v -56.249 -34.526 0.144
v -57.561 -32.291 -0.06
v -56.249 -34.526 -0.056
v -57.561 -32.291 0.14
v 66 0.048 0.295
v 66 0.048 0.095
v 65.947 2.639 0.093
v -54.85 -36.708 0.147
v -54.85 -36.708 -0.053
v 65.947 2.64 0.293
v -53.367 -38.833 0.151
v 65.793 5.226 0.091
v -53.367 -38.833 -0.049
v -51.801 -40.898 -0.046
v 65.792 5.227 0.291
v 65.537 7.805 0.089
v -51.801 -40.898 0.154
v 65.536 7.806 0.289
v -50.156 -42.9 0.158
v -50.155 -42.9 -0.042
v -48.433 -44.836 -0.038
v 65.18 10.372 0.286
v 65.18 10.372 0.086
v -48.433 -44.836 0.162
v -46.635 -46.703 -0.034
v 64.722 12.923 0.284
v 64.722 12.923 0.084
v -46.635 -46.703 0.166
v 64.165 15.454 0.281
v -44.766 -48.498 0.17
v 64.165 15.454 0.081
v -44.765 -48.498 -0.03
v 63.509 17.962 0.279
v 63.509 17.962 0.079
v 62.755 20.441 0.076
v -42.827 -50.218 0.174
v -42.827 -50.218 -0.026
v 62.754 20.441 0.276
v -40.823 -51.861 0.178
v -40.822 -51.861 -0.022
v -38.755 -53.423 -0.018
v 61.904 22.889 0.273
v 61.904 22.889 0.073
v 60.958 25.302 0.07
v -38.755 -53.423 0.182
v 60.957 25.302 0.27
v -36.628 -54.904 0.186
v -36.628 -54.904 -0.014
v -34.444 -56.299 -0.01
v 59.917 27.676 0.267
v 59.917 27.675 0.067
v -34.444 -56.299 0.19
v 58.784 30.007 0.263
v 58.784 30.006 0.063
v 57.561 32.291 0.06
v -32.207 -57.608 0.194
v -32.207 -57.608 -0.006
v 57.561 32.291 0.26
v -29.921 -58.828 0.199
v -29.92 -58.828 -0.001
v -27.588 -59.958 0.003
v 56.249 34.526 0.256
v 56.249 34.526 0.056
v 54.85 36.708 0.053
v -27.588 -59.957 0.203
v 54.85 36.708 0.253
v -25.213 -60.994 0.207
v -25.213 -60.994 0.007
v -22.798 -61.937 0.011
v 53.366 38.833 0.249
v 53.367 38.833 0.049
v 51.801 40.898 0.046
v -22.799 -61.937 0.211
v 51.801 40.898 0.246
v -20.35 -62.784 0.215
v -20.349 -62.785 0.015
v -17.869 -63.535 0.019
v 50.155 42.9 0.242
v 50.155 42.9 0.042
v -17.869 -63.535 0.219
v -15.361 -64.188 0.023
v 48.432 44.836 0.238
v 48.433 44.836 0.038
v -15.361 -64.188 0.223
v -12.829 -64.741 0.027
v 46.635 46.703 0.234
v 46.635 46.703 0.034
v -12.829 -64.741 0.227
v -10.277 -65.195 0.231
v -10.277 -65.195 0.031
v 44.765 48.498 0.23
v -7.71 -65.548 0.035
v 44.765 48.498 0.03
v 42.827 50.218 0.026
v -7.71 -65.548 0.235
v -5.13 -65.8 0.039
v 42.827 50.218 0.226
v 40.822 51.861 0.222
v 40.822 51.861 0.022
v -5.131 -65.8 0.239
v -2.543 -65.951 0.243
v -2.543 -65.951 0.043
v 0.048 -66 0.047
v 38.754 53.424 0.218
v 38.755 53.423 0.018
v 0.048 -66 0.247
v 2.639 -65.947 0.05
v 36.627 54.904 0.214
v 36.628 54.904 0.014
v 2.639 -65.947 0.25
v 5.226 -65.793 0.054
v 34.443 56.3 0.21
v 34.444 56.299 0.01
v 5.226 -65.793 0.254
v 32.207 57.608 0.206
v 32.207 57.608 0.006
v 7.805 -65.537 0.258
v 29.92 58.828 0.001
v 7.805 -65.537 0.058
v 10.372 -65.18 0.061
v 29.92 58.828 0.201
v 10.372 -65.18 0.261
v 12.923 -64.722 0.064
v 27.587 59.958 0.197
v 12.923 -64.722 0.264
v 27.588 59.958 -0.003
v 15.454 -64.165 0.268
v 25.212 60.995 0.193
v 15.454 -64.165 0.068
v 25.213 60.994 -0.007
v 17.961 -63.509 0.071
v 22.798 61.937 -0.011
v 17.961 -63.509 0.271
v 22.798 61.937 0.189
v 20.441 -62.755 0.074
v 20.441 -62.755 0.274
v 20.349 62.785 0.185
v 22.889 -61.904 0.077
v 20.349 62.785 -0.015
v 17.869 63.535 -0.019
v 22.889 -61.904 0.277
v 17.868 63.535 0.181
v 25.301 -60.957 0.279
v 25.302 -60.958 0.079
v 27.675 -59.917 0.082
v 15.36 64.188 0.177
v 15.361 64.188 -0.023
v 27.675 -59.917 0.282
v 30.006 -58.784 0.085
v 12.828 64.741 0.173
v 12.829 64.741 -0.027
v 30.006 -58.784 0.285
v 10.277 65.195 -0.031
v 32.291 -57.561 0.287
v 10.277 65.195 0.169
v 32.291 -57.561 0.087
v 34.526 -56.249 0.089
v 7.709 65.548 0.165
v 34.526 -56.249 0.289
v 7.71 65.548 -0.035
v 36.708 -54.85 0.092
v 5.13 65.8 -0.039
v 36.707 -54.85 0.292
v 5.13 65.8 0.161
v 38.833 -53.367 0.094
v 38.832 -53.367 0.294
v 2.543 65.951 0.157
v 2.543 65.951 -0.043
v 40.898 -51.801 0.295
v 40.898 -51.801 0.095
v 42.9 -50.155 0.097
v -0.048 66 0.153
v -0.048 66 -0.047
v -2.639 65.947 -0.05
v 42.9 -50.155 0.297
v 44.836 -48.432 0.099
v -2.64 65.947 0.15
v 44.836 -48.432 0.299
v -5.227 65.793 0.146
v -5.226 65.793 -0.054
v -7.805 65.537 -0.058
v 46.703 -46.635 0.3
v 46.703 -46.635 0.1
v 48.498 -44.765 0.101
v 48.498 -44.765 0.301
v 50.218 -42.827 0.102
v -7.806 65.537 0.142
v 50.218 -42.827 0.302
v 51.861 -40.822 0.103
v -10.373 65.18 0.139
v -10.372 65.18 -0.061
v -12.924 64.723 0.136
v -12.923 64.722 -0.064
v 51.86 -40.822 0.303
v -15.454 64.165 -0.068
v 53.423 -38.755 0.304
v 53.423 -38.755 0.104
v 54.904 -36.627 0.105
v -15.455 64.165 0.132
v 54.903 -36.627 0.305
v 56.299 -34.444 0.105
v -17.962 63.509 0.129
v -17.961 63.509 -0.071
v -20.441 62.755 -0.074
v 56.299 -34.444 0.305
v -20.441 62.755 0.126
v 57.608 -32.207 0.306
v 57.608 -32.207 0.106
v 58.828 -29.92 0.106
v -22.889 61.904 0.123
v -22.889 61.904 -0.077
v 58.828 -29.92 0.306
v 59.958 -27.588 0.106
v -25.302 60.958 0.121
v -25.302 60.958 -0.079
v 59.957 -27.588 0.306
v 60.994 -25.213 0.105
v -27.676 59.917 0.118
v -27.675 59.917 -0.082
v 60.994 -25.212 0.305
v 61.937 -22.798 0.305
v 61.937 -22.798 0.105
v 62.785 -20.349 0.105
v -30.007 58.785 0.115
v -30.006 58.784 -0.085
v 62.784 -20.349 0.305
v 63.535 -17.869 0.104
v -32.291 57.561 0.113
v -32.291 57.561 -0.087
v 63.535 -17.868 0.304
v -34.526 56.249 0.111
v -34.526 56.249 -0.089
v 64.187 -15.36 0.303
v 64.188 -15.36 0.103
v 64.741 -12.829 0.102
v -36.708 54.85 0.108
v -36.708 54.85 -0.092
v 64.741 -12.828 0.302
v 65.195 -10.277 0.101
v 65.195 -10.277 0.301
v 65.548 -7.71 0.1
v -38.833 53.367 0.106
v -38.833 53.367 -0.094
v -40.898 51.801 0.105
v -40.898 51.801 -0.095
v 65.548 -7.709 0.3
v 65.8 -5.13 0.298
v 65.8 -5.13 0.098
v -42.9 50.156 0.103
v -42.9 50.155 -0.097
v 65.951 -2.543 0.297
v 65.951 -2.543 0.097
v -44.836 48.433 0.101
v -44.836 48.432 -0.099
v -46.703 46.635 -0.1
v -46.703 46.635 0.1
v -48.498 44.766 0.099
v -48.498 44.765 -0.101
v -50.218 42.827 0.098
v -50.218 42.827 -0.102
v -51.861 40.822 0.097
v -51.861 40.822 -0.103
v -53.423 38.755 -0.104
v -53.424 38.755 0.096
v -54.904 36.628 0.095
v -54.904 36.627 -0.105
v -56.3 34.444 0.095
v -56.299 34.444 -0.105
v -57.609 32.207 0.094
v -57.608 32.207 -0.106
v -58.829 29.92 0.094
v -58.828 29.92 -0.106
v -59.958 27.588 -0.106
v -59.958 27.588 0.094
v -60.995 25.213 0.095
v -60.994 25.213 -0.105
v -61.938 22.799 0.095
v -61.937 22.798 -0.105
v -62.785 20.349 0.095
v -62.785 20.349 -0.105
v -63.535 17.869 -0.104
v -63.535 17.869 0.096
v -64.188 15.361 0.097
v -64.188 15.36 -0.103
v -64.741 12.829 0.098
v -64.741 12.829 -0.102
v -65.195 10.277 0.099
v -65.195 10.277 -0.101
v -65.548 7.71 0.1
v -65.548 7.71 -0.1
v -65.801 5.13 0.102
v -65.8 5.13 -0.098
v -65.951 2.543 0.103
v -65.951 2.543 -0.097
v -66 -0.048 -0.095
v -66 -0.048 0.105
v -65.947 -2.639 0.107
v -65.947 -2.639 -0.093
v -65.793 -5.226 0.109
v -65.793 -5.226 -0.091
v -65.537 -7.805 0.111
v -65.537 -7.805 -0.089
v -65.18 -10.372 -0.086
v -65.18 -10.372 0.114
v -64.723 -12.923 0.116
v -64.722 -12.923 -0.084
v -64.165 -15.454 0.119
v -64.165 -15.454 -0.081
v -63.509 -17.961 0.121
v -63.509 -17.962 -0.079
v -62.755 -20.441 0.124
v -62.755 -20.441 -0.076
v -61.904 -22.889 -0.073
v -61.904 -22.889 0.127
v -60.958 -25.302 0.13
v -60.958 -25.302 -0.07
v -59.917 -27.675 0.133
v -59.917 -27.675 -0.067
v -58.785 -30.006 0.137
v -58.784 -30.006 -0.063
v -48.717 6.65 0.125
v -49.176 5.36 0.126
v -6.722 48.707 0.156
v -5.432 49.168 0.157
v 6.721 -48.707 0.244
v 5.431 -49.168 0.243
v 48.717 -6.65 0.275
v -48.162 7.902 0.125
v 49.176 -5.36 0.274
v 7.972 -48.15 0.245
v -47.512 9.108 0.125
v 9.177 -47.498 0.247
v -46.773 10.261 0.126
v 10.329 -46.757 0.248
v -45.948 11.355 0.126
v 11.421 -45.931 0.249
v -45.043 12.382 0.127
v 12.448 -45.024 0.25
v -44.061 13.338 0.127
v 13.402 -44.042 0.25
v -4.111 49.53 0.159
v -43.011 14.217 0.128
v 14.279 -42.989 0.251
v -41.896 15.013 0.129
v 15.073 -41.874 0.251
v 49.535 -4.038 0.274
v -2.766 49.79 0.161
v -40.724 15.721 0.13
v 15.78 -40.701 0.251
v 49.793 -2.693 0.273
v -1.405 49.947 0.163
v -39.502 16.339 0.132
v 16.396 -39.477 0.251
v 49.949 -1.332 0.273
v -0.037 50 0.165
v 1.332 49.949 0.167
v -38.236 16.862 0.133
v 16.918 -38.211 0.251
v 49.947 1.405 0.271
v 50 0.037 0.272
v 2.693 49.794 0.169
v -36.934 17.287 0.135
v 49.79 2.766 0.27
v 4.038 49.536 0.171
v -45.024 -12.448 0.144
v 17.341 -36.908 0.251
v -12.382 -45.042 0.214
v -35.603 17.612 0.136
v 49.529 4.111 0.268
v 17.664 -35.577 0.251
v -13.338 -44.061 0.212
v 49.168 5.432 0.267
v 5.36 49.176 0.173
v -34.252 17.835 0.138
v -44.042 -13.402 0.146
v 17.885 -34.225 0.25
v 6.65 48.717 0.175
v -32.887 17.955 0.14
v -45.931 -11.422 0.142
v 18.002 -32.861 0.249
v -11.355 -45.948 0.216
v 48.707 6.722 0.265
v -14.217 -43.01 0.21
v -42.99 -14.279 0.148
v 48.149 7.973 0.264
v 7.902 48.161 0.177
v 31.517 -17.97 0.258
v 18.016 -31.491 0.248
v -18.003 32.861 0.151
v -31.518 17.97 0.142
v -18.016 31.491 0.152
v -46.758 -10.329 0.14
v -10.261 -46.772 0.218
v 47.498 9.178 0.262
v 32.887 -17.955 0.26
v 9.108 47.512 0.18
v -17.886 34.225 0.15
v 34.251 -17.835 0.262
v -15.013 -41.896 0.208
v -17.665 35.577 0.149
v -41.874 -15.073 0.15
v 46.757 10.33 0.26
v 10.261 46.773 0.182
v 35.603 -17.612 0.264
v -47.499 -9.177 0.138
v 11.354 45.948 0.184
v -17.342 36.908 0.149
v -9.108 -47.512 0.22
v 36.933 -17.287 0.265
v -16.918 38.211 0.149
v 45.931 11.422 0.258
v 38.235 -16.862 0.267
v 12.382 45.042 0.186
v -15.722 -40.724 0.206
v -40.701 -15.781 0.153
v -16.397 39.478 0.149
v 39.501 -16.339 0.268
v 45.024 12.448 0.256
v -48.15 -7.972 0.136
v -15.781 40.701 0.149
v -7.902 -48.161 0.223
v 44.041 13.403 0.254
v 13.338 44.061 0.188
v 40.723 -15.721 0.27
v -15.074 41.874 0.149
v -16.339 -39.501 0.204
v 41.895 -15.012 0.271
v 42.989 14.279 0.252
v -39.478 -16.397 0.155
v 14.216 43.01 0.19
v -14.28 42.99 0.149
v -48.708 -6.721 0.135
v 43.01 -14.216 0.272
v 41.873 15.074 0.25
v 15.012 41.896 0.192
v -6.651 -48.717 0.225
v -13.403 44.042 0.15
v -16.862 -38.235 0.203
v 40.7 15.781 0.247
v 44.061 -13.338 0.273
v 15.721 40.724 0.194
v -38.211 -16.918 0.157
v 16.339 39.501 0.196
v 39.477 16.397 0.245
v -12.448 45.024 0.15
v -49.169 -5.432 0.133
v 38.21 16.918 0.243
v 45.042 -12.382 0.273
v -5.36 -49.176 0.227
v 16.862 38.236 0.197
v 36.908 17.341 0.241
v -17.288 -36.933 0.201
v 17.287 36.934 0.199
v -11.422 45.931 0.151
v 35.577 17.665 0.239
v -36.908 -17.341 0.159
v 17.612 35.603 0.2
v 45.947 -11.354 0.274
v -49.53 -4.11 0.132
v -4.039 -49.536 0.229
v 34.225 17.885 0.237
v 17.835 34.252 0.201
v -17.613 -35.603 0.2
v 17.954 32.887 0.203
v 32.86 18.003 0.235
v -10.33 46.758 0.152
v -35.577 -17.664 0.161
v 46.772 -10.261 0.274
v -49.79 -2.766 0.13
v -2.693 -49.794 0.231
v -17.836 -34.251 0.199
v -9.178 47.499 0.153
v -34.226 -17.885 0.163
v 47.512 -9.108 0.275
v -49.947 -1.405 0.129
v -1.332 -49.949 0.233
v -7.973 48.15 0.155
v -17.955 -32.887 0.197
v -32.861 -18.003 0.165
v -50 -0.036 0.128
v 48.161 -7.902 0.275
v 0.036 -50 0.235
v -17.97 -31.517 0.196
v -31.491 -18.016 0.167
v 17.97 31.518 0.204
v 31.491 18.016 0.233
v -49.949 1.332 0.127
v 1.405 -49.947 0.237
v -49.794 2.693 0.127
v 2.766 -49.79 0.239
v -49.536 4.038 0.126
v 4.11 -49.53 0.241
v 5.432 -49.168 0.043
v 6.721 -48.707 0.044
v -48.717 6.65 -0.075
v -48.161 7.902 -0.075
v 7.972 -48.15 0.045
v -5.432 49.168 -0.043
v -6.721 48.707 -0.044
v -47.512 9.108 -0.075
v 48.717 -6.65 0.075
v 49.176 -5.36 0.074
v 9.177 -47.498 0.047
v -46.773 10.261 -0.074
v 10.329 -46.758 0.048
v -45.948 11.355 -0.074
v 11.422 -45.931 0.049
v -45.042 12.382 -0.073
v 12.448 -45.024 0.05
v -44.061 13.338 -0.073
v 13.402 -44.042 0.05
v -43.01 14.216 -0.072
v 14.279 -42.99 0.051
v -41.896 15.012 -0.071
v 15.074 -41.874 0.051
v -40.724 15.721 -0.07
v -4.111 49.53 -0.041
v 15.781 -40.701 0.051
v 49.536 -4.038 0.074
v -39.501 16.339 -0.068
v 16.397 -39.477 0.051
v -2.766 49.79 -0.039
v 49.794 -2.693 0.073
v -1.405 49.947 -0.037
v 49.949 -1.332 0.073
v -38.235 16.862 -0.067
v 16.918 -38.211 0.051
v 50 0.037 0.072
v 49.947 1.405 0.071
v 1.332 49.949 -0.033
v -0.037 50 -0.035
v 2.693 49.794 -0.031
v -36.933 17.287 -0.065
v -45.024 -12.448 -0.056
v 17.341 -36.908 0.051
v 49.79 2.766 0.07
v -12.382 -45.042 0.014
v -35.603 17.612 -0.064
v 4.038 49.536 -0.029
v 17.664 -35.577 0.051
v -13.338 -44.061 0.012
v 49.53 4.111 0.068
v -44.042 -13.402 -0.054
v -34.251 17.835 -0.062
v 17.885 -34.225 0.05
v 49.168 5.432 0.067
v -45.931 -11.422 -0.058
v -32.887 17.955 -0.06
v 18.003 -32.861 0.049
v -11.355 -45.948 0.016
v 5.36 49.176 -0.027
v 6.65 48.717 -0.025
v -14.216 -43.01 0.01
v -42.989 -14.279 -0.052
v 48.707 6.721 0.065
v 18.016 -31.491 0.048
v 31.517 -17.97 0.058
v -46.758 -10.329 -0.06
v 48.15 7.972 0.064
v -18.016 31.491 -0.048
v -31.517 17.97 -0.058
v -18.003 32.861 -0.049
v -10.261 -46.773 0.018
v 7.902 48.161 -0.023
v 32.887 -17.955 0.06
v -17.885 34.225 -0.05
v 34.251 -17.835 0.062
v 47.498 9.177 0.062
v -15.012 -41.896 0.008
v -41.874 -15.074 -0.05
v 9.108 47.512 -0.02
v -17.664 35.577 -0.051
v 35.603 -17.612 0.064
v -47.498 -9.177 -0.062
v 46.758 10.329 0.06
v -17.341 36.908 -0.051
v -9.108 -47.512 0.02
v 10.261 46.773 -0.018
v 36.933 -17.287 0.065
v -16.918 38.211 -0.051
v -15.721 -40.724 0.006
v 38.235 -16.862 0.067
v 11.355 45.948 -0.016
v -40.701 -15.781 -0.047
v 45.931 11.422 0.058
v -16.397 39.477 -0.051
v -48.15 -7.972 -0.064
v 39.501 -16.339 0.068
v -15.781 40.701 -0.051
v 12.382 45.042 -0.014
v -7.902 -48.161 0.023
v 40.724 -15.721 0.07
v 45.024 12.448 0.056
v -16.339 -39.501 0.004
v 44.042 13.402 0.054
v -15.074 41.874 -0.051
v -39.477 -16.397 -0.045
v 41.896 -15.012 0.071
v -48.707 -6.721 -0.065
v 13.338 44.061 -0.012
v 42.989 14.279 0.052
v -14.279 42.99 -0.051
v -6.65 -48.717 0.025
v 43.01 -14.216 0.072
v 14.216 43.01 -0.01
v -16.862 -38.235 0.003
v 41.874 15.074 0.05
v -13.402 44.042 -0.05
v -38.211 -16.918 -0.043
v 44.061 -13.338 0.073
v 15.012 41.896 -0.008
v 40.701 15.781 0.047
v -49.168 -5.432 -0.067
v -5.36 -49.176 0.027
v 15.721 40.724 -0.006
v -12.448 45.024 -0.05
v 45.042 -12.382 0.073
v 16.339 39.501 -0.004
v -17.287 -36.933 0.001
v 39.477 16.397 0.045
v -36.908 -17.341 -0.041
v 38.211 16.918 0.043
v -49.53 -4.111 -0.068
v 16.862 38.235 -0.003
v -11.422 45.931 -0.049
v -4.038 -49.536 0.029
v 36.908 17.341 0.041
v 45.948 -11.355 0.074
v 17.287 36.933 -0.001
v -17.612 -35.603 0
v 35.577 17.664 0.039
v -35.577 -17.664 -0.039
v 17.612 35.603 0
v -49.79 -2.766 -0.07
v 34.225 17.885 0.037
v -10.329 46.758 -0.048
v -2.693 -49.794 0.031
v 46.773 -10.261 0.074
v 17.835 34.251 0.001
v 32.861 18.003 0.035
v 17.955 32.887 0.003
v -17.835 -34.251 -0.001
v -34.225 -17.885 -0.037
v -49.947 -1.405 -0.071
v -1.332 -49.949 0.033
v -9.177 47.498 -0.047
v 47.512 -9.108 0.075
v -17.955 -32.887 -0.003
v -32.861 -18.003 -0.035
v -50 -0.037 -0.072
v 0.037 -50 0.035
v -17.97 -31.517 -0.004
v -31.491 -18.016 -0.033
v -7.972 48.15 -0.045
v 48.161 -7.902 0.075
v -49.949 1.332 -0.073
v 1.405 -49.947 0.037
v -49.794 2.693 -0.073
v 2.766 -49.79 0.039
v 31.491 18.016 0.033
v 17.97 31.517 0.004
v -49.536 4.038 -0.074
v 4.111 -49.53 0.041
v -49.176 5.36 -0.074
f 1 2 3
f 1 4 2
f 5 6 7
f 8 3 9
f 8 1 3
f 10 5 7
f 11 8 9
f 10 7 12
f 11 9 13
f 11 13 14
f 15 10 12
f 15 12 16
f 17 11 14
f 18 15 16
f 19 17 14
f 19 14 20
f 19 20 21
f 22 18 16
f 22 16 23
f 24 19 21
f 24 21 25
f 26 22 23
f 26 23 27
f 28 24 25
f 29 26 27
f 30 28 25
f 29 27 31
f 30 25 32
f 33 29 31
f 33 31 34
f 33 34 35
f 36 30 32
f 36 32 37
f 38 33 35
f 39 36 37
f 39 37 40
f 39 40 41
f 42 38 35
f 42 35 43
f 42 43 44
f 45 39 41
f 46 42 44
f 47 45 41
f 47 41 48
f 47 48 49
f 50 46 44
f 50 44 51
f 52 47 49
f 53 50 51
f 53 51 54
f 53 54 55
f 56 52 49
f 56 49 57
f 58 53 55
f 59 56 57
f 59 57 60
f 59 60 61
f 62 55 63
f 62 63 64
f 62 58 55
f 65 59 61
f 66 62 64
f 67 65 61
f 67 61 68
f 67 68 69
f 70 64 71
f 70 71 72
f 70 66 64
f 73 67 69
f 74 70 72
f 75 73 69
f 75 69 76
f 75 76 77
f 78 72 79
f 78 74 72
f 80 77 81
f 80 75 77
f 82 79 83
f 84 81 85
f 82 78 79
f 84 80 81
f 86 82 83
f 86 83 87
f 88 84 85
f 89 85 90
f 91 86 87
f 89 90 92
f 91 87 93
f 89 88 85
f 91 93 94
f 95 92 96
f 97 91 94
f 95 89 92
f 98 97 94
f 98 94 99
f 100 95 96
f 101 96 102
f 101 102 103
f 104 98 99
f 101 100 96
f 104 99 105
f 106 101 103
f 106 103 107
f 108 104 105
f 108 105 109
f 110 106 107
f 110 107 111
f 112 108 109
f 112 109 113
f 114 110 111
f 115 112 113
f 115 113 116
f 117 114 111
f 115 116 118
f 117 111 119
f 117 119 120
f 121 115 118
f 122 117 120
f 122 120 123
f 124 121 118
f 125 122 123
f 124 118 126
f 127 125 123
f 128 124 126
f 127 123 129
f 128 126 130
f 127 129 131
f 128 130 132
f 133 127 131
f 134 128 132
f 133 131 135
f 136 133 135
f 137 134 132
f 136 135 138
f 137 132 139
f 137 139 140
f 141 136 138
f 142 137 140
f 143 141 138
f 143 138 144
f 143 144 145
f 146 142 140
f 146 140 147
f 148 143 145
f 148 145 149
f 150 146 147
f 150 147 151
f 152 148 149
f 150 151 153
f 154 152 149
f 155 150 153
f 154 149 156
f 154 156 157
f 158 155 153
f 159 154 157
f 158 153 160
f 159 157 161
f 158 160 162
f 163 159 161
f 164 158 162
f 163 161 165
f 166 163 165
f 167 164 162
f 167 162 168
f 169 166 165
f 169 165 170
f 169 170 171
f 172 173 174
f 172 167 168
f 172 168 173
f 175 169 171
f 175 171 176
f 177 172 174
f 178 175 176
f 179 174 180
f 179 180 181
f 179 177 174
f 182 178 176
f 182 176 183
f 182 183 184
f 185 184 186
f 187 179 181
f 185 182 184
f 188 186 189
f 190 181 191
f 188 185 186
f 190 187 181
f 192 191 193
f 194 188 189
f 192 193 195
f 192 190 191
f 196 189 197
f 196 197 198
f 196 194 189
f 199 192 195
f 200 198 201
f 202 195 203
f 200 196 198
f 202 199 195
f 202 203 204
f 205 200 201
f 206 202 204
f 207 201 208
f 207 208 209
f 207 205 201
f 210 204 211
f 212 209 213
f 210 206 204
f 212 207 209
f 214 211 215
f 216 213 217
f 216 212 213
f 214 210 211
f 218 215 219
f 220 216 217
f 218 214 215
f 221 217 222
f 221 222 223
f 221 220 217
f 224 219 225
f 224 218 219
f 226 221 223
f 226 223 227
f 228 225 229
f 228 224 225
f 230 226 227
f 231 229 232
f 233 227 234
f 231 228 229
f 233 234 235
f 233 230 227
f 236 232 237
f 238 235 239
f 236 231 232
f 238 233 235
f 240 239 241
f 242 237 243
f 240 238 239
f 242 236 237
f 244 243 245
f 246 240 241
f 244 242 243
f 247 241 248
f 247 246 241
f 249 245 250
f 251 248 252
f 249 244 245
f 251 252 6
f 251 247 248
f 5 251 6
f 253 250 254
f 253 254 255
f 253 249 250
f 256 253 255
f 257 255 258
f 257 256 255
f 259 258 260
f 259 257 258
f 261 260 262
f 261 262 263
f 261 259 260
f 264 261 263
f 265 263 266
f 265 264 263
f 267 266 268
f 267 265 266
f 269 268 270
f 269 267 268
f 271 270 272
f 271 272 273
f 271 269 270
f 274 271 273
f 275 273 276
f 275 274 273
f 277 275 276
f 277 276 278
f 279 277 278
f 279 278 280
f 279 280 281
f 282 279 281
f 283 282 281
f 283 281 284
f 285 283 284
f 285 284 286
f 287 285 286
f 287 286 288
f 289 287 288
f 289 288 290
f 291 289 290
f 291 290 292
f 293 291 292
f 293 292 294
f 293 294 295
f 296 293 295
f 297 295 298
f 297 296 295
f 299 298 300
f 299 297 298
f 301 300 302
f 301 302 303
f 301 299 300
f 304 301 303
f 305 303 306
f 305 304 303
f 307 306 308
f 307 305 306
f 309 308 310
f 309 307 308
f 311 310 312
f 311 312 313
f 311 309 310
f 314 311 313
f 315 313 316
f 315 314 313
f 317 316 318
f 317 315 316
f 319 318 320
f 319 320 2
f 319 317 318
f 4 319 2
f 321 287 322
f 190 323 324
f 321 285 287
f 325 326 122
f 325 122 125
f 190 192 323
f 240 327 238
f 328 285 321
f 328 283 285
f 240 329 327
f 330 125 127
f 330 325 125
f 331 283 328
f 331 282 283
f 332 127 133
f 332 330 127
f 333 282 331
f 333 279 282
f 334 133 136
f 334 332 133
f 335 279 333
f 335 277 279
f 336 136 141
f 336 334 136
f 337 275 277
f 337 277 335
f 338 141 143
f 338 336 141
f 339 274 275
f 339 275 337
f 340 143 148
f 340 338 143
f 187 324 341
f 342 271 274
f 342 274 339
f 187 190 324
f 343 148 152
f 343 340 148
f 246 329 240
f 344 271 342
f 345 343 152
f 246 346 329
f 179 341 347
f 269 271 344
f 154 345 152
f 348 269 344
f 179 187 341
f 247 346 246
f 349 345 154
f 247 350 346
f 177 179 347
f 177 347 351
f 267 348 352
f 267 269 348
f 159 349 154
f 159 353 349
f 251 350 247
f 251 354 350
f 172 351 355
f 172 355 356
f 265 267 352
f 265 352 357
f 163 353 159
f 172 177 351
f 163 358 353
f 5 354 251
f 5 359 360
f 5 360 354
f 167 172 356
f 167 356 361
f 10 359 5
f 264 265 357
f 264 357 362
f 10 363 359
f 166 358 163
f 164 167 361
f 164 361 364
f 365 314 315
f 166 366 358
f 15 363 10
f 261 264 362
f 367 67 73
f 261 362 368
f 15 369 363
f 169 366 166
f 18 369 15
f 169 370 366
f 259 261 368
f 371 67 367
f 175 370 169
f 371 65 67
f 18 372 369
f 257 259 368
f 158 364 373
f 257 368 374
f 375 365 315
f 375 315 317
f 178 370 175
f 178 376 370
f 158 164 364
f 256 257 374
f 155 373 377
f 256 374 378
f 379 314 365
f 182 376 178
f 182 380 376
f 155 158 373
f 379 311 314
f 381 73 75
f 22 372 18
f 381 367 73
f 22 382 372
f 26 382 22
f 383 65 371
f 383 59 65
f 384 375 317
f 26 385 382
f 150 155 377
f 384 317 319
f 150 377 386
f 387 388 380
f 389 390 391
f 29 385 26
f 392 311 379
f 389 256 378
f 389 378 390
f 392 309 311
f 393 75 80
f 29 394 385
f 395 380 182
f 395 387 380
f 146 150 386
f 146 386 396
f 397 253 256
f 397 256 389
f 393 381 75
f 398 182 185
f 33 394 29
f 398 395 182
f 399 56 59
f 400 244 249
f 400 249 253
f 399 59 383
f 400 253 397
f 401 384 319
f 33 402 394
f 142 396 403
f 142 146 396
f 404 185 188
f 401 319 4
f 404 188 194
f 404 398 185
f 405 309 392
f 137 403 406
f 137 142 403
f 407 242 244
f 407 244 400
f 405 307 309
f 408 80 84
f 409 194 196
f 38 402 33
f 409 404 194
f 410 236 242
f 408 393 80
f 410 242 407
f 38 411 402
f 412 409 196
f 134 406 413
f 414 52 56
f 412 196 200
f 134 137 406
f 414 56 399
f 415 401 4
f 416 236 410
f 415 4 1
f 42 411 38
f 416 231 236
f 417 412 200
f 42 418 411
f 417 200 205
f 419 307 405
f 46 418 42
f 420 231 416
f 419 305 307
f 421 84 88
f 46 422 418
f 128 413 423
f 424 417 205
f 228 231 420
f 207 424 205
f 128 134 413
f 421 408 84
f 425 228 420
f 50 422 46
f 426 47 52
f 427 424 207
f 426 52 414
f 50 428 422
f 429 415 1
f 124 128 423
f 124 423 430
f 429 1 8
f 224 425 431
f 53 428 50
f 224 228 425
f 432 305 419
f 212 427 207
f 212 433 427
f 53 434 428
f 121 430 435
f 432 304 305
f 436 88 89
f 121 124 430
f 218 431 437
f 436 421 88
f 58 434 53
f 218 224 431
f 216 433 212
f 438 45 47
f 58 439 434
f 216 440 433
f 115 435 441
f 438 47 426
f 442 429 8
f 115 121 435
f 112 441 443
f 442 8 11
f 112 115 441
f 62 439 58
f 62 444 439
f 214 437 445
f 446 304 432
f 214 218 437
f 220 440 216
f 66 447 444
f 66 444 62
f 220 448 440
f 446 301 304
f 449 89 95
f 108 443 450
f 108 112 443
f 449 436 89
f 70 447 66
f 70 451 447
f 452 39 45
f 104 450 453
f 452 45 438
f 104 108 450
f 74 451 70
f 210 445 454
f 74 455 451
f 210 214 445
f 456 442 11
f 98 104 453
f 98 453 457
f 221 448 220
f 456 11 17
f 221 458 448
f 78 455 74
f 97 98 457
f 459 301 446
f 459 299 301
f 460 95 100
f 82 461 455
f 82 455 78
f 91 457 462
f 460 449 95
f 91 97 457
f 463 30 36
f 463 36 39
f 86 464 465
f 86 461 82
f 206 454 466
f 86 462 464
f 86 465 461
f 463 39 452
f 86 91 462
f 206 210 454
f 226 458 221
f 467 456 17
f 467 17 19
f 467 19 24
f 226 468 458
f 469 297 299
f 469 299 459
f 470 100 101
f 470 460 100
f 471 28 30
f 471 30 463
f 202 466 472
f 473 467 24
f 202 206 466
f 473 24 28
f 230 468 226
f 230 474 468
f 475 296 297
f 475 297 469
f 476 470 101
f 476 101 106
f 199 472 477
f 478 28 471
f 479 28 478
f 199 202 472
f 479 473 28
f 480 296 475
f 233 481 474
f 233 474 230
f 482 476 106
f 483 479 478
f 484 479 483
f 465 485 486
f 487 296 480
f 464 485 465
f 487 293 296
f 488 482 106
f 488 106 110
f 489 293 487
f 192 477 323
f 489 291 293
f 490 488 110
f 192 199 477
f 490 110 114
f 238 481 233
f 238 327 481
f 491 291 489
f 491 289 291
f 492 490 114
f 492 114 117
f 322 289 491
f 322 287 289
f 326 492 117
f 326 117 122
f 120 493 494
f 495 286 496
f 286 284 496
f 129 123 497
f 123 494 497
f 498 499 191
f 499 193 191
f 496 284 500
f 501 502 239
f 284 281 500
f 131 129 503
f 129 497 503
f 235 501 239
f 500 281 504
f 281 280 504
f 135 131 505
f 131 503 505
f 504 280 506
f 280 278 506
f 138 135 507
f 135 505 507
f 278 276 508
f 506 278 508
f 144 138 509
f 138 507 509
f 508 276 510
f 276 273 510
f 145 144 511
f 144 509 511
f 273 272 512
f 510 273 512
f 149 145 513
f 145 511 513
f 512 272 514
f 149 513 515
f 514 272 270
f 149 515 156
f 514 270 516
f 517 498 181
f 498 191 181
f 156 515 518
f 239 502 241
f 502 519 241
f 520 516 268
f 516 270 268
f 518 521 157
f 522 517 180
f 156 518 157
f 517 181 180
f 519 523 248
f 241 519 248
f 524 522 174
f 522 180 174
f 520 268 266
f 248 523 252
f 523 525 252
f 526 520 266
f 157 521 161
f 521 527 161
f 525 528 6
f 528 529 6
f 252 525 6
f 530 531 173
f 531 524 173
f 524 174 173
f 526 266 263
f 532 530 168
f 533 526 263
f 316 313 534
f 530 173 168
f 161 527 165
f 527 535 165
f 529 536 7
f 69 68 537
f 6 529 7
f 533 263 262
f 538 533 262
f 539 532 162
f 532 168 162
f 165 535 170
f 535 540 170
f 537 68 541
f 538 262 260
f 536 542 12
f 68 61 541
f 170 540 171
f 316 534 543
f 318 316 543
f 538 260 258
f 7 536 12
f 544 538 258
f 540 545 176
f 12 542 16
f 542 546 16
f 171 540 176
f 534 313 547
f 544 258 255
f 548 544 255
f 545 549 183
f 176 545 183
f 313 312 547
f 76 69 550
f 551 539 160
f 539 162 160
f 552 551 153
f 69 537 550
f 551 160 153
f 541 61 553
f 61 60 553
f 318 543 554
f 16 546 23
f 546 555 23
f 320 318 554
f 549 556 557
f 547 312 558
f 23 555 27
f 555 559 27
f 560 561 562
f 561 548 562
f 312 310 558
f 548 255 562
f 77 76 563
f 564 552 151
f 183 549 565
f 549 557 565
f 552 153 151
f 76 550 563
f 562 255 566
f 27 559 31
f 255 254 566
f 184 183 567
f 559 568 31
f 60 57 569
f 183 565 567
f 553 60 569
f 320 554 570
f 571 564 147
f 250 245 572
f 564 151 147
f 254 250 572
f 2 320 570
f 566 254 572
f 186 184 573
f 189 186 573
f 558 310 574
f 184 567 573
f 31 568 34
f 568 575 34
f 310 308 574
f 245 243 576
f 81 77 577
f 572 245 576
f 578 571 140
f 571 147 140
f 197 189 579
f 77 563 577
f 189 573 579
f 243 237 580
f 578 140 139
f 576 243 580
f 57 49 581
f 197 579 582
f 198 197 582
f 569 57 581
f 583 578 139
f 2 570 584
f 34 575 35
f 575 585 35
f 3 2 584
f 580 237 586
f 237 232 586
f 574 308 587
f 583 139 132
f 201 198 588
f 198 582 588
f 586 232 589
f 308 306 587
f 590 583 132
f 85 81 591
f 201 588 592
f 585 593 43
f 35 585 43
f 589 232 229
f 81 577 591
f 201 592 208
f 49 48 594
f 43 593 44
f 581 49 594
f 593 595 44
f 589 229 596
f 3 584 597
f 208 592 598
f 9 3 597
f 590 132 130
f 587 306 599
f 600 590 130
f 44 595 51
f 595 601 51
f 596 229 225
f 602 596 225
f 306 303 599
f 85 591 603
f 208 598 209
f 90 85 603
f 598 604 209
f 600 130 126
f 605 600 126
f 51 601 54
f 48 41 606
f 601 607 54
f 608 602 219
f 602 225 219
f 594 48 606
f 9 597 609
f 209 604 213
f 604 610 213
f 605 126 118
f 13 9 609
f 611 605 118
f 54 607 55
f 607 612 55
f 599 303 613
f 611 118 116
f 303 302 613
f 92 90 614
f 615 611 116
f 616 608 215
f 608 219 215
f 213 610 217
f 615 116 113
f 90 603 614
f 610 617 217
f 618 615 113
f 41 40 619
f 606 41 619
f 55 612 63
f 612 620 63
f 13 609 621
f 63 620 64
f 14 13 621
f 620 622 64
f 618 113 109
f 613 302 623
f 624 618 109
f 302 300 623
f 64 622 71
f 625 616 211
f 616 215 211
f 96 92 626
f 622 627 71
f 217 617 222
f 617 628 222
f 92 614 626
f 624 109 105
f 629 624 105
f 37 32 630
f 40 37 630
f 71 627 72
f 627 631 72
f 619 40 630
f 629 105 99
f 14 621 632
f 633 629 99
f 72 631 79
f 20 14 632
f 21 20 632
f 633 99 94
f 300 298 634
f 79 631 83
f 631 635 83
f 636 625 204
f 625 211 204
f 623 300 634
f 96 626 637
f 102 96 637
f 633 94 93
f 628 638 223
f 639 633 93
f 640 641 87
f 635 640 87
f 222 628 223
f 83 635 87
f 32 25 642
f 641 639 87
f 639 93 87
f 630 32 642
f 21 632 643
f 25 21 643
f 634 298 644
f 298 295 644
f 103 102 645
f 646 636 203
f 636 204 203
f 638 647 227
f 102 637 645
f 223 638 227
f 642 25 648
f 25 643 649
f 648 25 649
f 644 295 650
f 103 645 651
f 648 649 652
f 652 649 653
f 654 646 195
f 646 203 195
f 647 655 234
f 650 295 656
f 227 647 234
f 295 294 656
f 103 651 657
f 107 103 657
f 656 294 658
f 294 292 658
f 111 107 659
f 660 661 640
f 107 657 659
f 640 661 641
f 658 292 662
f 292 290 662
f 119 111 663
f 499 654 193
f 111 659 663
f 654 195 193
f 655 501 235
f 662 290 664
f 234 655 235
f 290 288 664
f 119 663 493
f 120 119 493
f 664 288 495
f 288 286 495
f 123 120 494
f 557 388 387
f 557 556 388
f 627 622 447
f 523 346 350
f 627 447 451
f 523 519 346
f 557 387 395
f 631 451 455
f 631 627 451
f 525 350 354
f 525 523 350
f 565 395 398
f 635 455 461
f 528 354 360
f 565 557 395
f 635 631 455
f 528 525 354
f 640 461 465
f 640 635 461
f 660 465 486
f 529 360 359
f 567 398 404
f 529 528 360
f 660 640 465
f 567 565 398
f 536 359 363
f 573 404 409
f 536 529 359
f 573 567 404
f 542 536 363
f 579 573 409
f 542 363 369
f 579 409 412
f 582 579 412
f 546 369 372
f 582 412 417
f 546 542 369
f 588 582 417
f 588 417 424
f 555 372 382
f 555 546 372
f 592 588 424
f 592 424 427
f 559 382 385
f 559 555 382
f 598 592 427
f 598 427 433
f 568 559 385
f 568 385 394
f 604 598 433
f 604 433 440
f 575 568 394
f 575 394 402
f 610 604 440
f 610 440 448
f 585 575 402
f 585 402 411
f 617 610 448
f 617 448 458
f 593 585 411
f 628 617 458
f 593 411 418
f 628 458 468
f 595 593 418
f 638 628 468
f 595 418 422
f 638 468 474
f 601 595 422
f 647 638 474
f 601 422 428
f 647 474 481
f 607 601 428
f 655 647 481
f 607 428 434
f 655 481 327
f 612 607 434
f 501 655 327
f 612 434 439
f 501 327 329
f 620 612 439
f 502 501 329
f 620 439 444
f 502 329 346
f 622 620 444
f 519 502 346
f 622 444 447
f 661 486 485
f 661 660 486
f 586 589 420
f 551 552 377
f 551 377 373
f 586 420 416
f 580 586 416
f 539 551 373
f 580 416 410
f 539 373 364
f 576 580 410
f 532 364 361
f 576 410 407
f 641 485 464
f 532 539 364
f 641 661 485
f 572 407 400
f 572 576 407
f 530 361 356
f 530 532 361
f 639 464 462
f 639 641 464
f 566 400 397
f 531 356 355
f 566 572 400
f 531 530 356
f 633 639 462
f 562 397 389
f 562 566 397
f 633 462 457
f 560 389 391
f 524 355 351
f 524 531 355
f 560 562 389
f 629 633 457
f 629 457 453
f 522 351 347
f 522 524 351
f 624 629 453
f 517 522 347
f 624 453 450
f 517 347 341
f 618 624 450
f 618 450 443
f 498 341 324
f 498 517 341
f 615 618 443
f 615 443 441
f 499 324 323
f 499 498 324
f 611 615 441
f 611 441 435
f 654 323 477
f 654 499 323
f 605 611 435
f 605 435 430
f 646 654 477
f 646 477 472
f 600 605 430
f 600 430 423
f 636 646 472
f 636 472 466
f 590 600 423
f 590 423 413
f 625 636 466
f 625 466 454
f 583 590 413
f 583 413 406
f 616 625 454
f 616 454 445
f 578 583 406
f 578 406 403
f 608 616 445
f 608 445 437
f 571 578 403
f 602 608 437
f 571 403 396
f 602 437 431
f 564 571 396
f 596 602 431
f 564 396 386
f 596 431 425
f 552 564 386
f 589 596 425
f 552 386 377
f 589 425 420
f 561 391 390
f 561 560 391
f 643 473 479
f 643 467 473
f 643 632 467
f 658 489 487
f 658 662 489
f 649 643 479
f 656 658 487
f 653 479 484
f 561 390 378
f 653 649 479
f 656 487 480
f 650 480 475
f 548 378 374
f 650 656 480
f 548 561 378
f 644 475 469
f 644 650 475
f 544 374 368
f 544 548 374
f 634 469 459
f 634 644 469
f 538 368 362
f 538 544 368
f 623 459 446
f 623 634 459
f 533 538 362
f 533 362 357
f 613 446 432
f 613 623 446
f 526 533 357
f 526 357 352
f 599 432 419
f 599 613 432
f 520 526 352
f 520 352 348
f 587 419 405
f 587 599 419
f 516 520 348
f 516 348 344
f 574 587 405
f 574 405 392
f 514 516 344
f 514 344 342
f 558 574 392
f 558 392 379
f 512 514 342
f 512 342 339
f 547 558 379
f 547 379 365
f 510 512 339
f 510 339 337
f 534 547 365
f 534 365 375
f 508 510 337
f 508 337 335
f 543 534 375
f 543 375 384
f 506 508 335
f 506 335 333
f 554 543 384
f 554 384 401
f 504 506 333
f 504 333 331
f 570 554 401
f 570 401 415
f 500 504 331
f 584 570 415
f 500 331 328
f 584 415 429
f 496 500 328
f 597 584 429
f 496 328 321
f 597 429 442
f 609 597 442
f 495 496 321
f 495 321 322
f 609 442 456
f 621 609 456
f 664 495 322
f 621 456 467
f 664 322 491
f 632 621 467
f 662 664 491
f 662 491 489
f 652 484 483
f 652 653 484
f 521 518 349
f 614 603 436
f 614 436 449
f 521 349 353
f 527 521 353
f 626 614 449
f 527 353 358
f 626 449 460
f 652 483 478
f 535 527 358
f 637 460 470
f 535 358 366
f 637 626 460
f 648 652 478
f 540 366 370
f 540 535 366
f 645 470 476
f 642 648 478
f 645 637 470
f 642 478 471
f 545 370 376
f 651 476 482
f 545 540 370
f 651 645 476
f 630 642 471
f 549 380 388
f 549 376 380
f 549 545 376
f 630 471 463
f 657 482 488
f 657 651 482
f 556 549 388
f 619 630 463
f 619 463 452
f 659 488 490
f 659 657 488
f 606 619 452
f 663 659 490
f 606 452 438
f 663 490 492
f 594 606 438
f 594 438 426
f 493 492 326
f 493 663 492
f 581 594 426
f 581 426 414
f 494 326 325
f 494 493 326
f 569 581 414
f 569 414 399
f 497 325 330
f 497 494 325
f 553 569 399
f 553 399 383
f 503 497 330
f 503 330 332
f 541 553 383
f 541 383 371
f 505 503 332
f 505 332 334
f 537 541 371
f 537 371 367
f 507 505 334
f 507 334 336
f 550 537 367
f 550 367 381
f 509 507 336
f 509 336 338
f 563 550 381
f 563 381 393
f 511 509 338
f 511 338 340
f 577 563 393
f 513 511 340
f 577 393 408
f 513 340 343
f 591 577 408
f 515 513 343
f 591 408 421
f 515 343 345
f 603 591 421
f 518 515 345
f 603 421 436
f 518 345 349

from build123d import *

# Parameters (mm, degrees)
PAD_DEPTH           = 10
CYLINDER_R          = 66
CYLINDER_DEPTH      = 0.2
CUT_ROLL_ANGLE      = -0.040537
CUT_PITCH_ANGLE     = -0.082331
CUT_PLACEMENT_ANGLE = 0.041901


with BuildPart() as pad:
    # Sketch → Pad (new body)
    with BuildSketch(Plane.XY):
        with BuildLine():
            ThreePointArc((31.504301, -17.993173), (50, 0), (31.504301, 17.993173))
            Line((31.504301, 17.993173), (17.993173, 31.504301))
            ThreePointArc((17.993173, 31.504301), (0, 50), (-17.993173, 31.504301))
            Line((-17.993173, 31.504301), (-31.504301, 17.993173))
            ThreePointArc((-31.504301, 17.993173), (-50, 0), (-31.504301, -17.993173))
            Line((-31.504301, -17.993173), (-17.993173, -31.504301))
            ThreePointArc((-17.993173, -31.504301), (0, -50), (17.993173, -31.504301))
            Line((17.993173, -31.504301), (31.504301, -17.993173))
        make_face()
    extrude(amount=PAD_DEPTH)


with BuildPart() as cut:
    # Cylinder → Cylinder (new body)
    with BuildSketch(Plane.XY):
        Circle(CYLINDER_R)
    extrude(amount=CYLINDER_DEPTH)

    # Cut: cut Pad
    add(pad.part, mode=Mode.SUBTRACT)


with BuildPart() as cut_1:
    # Cut roll: moved
    add(cut.part.rotate(Axis((0, 0, 0), (1, 0, 0)), CUT_ROLL_ANGLE))


with BuildPart() as cut_2:
    # Cut pitch: moved
    add(cut_1.part.rotate(Axis((0, 0, 0), (0, 1, 0)), CUT_PITCH_ANGLE))


with BuildPart() as cut_3:
    # Cut placement: moved
    add(cut_2.part.rotate(Axis((0, 0, 0), (0, 0, 1)), CUT_PLACEMENT_ANGLE))


solid = cut_3.part
